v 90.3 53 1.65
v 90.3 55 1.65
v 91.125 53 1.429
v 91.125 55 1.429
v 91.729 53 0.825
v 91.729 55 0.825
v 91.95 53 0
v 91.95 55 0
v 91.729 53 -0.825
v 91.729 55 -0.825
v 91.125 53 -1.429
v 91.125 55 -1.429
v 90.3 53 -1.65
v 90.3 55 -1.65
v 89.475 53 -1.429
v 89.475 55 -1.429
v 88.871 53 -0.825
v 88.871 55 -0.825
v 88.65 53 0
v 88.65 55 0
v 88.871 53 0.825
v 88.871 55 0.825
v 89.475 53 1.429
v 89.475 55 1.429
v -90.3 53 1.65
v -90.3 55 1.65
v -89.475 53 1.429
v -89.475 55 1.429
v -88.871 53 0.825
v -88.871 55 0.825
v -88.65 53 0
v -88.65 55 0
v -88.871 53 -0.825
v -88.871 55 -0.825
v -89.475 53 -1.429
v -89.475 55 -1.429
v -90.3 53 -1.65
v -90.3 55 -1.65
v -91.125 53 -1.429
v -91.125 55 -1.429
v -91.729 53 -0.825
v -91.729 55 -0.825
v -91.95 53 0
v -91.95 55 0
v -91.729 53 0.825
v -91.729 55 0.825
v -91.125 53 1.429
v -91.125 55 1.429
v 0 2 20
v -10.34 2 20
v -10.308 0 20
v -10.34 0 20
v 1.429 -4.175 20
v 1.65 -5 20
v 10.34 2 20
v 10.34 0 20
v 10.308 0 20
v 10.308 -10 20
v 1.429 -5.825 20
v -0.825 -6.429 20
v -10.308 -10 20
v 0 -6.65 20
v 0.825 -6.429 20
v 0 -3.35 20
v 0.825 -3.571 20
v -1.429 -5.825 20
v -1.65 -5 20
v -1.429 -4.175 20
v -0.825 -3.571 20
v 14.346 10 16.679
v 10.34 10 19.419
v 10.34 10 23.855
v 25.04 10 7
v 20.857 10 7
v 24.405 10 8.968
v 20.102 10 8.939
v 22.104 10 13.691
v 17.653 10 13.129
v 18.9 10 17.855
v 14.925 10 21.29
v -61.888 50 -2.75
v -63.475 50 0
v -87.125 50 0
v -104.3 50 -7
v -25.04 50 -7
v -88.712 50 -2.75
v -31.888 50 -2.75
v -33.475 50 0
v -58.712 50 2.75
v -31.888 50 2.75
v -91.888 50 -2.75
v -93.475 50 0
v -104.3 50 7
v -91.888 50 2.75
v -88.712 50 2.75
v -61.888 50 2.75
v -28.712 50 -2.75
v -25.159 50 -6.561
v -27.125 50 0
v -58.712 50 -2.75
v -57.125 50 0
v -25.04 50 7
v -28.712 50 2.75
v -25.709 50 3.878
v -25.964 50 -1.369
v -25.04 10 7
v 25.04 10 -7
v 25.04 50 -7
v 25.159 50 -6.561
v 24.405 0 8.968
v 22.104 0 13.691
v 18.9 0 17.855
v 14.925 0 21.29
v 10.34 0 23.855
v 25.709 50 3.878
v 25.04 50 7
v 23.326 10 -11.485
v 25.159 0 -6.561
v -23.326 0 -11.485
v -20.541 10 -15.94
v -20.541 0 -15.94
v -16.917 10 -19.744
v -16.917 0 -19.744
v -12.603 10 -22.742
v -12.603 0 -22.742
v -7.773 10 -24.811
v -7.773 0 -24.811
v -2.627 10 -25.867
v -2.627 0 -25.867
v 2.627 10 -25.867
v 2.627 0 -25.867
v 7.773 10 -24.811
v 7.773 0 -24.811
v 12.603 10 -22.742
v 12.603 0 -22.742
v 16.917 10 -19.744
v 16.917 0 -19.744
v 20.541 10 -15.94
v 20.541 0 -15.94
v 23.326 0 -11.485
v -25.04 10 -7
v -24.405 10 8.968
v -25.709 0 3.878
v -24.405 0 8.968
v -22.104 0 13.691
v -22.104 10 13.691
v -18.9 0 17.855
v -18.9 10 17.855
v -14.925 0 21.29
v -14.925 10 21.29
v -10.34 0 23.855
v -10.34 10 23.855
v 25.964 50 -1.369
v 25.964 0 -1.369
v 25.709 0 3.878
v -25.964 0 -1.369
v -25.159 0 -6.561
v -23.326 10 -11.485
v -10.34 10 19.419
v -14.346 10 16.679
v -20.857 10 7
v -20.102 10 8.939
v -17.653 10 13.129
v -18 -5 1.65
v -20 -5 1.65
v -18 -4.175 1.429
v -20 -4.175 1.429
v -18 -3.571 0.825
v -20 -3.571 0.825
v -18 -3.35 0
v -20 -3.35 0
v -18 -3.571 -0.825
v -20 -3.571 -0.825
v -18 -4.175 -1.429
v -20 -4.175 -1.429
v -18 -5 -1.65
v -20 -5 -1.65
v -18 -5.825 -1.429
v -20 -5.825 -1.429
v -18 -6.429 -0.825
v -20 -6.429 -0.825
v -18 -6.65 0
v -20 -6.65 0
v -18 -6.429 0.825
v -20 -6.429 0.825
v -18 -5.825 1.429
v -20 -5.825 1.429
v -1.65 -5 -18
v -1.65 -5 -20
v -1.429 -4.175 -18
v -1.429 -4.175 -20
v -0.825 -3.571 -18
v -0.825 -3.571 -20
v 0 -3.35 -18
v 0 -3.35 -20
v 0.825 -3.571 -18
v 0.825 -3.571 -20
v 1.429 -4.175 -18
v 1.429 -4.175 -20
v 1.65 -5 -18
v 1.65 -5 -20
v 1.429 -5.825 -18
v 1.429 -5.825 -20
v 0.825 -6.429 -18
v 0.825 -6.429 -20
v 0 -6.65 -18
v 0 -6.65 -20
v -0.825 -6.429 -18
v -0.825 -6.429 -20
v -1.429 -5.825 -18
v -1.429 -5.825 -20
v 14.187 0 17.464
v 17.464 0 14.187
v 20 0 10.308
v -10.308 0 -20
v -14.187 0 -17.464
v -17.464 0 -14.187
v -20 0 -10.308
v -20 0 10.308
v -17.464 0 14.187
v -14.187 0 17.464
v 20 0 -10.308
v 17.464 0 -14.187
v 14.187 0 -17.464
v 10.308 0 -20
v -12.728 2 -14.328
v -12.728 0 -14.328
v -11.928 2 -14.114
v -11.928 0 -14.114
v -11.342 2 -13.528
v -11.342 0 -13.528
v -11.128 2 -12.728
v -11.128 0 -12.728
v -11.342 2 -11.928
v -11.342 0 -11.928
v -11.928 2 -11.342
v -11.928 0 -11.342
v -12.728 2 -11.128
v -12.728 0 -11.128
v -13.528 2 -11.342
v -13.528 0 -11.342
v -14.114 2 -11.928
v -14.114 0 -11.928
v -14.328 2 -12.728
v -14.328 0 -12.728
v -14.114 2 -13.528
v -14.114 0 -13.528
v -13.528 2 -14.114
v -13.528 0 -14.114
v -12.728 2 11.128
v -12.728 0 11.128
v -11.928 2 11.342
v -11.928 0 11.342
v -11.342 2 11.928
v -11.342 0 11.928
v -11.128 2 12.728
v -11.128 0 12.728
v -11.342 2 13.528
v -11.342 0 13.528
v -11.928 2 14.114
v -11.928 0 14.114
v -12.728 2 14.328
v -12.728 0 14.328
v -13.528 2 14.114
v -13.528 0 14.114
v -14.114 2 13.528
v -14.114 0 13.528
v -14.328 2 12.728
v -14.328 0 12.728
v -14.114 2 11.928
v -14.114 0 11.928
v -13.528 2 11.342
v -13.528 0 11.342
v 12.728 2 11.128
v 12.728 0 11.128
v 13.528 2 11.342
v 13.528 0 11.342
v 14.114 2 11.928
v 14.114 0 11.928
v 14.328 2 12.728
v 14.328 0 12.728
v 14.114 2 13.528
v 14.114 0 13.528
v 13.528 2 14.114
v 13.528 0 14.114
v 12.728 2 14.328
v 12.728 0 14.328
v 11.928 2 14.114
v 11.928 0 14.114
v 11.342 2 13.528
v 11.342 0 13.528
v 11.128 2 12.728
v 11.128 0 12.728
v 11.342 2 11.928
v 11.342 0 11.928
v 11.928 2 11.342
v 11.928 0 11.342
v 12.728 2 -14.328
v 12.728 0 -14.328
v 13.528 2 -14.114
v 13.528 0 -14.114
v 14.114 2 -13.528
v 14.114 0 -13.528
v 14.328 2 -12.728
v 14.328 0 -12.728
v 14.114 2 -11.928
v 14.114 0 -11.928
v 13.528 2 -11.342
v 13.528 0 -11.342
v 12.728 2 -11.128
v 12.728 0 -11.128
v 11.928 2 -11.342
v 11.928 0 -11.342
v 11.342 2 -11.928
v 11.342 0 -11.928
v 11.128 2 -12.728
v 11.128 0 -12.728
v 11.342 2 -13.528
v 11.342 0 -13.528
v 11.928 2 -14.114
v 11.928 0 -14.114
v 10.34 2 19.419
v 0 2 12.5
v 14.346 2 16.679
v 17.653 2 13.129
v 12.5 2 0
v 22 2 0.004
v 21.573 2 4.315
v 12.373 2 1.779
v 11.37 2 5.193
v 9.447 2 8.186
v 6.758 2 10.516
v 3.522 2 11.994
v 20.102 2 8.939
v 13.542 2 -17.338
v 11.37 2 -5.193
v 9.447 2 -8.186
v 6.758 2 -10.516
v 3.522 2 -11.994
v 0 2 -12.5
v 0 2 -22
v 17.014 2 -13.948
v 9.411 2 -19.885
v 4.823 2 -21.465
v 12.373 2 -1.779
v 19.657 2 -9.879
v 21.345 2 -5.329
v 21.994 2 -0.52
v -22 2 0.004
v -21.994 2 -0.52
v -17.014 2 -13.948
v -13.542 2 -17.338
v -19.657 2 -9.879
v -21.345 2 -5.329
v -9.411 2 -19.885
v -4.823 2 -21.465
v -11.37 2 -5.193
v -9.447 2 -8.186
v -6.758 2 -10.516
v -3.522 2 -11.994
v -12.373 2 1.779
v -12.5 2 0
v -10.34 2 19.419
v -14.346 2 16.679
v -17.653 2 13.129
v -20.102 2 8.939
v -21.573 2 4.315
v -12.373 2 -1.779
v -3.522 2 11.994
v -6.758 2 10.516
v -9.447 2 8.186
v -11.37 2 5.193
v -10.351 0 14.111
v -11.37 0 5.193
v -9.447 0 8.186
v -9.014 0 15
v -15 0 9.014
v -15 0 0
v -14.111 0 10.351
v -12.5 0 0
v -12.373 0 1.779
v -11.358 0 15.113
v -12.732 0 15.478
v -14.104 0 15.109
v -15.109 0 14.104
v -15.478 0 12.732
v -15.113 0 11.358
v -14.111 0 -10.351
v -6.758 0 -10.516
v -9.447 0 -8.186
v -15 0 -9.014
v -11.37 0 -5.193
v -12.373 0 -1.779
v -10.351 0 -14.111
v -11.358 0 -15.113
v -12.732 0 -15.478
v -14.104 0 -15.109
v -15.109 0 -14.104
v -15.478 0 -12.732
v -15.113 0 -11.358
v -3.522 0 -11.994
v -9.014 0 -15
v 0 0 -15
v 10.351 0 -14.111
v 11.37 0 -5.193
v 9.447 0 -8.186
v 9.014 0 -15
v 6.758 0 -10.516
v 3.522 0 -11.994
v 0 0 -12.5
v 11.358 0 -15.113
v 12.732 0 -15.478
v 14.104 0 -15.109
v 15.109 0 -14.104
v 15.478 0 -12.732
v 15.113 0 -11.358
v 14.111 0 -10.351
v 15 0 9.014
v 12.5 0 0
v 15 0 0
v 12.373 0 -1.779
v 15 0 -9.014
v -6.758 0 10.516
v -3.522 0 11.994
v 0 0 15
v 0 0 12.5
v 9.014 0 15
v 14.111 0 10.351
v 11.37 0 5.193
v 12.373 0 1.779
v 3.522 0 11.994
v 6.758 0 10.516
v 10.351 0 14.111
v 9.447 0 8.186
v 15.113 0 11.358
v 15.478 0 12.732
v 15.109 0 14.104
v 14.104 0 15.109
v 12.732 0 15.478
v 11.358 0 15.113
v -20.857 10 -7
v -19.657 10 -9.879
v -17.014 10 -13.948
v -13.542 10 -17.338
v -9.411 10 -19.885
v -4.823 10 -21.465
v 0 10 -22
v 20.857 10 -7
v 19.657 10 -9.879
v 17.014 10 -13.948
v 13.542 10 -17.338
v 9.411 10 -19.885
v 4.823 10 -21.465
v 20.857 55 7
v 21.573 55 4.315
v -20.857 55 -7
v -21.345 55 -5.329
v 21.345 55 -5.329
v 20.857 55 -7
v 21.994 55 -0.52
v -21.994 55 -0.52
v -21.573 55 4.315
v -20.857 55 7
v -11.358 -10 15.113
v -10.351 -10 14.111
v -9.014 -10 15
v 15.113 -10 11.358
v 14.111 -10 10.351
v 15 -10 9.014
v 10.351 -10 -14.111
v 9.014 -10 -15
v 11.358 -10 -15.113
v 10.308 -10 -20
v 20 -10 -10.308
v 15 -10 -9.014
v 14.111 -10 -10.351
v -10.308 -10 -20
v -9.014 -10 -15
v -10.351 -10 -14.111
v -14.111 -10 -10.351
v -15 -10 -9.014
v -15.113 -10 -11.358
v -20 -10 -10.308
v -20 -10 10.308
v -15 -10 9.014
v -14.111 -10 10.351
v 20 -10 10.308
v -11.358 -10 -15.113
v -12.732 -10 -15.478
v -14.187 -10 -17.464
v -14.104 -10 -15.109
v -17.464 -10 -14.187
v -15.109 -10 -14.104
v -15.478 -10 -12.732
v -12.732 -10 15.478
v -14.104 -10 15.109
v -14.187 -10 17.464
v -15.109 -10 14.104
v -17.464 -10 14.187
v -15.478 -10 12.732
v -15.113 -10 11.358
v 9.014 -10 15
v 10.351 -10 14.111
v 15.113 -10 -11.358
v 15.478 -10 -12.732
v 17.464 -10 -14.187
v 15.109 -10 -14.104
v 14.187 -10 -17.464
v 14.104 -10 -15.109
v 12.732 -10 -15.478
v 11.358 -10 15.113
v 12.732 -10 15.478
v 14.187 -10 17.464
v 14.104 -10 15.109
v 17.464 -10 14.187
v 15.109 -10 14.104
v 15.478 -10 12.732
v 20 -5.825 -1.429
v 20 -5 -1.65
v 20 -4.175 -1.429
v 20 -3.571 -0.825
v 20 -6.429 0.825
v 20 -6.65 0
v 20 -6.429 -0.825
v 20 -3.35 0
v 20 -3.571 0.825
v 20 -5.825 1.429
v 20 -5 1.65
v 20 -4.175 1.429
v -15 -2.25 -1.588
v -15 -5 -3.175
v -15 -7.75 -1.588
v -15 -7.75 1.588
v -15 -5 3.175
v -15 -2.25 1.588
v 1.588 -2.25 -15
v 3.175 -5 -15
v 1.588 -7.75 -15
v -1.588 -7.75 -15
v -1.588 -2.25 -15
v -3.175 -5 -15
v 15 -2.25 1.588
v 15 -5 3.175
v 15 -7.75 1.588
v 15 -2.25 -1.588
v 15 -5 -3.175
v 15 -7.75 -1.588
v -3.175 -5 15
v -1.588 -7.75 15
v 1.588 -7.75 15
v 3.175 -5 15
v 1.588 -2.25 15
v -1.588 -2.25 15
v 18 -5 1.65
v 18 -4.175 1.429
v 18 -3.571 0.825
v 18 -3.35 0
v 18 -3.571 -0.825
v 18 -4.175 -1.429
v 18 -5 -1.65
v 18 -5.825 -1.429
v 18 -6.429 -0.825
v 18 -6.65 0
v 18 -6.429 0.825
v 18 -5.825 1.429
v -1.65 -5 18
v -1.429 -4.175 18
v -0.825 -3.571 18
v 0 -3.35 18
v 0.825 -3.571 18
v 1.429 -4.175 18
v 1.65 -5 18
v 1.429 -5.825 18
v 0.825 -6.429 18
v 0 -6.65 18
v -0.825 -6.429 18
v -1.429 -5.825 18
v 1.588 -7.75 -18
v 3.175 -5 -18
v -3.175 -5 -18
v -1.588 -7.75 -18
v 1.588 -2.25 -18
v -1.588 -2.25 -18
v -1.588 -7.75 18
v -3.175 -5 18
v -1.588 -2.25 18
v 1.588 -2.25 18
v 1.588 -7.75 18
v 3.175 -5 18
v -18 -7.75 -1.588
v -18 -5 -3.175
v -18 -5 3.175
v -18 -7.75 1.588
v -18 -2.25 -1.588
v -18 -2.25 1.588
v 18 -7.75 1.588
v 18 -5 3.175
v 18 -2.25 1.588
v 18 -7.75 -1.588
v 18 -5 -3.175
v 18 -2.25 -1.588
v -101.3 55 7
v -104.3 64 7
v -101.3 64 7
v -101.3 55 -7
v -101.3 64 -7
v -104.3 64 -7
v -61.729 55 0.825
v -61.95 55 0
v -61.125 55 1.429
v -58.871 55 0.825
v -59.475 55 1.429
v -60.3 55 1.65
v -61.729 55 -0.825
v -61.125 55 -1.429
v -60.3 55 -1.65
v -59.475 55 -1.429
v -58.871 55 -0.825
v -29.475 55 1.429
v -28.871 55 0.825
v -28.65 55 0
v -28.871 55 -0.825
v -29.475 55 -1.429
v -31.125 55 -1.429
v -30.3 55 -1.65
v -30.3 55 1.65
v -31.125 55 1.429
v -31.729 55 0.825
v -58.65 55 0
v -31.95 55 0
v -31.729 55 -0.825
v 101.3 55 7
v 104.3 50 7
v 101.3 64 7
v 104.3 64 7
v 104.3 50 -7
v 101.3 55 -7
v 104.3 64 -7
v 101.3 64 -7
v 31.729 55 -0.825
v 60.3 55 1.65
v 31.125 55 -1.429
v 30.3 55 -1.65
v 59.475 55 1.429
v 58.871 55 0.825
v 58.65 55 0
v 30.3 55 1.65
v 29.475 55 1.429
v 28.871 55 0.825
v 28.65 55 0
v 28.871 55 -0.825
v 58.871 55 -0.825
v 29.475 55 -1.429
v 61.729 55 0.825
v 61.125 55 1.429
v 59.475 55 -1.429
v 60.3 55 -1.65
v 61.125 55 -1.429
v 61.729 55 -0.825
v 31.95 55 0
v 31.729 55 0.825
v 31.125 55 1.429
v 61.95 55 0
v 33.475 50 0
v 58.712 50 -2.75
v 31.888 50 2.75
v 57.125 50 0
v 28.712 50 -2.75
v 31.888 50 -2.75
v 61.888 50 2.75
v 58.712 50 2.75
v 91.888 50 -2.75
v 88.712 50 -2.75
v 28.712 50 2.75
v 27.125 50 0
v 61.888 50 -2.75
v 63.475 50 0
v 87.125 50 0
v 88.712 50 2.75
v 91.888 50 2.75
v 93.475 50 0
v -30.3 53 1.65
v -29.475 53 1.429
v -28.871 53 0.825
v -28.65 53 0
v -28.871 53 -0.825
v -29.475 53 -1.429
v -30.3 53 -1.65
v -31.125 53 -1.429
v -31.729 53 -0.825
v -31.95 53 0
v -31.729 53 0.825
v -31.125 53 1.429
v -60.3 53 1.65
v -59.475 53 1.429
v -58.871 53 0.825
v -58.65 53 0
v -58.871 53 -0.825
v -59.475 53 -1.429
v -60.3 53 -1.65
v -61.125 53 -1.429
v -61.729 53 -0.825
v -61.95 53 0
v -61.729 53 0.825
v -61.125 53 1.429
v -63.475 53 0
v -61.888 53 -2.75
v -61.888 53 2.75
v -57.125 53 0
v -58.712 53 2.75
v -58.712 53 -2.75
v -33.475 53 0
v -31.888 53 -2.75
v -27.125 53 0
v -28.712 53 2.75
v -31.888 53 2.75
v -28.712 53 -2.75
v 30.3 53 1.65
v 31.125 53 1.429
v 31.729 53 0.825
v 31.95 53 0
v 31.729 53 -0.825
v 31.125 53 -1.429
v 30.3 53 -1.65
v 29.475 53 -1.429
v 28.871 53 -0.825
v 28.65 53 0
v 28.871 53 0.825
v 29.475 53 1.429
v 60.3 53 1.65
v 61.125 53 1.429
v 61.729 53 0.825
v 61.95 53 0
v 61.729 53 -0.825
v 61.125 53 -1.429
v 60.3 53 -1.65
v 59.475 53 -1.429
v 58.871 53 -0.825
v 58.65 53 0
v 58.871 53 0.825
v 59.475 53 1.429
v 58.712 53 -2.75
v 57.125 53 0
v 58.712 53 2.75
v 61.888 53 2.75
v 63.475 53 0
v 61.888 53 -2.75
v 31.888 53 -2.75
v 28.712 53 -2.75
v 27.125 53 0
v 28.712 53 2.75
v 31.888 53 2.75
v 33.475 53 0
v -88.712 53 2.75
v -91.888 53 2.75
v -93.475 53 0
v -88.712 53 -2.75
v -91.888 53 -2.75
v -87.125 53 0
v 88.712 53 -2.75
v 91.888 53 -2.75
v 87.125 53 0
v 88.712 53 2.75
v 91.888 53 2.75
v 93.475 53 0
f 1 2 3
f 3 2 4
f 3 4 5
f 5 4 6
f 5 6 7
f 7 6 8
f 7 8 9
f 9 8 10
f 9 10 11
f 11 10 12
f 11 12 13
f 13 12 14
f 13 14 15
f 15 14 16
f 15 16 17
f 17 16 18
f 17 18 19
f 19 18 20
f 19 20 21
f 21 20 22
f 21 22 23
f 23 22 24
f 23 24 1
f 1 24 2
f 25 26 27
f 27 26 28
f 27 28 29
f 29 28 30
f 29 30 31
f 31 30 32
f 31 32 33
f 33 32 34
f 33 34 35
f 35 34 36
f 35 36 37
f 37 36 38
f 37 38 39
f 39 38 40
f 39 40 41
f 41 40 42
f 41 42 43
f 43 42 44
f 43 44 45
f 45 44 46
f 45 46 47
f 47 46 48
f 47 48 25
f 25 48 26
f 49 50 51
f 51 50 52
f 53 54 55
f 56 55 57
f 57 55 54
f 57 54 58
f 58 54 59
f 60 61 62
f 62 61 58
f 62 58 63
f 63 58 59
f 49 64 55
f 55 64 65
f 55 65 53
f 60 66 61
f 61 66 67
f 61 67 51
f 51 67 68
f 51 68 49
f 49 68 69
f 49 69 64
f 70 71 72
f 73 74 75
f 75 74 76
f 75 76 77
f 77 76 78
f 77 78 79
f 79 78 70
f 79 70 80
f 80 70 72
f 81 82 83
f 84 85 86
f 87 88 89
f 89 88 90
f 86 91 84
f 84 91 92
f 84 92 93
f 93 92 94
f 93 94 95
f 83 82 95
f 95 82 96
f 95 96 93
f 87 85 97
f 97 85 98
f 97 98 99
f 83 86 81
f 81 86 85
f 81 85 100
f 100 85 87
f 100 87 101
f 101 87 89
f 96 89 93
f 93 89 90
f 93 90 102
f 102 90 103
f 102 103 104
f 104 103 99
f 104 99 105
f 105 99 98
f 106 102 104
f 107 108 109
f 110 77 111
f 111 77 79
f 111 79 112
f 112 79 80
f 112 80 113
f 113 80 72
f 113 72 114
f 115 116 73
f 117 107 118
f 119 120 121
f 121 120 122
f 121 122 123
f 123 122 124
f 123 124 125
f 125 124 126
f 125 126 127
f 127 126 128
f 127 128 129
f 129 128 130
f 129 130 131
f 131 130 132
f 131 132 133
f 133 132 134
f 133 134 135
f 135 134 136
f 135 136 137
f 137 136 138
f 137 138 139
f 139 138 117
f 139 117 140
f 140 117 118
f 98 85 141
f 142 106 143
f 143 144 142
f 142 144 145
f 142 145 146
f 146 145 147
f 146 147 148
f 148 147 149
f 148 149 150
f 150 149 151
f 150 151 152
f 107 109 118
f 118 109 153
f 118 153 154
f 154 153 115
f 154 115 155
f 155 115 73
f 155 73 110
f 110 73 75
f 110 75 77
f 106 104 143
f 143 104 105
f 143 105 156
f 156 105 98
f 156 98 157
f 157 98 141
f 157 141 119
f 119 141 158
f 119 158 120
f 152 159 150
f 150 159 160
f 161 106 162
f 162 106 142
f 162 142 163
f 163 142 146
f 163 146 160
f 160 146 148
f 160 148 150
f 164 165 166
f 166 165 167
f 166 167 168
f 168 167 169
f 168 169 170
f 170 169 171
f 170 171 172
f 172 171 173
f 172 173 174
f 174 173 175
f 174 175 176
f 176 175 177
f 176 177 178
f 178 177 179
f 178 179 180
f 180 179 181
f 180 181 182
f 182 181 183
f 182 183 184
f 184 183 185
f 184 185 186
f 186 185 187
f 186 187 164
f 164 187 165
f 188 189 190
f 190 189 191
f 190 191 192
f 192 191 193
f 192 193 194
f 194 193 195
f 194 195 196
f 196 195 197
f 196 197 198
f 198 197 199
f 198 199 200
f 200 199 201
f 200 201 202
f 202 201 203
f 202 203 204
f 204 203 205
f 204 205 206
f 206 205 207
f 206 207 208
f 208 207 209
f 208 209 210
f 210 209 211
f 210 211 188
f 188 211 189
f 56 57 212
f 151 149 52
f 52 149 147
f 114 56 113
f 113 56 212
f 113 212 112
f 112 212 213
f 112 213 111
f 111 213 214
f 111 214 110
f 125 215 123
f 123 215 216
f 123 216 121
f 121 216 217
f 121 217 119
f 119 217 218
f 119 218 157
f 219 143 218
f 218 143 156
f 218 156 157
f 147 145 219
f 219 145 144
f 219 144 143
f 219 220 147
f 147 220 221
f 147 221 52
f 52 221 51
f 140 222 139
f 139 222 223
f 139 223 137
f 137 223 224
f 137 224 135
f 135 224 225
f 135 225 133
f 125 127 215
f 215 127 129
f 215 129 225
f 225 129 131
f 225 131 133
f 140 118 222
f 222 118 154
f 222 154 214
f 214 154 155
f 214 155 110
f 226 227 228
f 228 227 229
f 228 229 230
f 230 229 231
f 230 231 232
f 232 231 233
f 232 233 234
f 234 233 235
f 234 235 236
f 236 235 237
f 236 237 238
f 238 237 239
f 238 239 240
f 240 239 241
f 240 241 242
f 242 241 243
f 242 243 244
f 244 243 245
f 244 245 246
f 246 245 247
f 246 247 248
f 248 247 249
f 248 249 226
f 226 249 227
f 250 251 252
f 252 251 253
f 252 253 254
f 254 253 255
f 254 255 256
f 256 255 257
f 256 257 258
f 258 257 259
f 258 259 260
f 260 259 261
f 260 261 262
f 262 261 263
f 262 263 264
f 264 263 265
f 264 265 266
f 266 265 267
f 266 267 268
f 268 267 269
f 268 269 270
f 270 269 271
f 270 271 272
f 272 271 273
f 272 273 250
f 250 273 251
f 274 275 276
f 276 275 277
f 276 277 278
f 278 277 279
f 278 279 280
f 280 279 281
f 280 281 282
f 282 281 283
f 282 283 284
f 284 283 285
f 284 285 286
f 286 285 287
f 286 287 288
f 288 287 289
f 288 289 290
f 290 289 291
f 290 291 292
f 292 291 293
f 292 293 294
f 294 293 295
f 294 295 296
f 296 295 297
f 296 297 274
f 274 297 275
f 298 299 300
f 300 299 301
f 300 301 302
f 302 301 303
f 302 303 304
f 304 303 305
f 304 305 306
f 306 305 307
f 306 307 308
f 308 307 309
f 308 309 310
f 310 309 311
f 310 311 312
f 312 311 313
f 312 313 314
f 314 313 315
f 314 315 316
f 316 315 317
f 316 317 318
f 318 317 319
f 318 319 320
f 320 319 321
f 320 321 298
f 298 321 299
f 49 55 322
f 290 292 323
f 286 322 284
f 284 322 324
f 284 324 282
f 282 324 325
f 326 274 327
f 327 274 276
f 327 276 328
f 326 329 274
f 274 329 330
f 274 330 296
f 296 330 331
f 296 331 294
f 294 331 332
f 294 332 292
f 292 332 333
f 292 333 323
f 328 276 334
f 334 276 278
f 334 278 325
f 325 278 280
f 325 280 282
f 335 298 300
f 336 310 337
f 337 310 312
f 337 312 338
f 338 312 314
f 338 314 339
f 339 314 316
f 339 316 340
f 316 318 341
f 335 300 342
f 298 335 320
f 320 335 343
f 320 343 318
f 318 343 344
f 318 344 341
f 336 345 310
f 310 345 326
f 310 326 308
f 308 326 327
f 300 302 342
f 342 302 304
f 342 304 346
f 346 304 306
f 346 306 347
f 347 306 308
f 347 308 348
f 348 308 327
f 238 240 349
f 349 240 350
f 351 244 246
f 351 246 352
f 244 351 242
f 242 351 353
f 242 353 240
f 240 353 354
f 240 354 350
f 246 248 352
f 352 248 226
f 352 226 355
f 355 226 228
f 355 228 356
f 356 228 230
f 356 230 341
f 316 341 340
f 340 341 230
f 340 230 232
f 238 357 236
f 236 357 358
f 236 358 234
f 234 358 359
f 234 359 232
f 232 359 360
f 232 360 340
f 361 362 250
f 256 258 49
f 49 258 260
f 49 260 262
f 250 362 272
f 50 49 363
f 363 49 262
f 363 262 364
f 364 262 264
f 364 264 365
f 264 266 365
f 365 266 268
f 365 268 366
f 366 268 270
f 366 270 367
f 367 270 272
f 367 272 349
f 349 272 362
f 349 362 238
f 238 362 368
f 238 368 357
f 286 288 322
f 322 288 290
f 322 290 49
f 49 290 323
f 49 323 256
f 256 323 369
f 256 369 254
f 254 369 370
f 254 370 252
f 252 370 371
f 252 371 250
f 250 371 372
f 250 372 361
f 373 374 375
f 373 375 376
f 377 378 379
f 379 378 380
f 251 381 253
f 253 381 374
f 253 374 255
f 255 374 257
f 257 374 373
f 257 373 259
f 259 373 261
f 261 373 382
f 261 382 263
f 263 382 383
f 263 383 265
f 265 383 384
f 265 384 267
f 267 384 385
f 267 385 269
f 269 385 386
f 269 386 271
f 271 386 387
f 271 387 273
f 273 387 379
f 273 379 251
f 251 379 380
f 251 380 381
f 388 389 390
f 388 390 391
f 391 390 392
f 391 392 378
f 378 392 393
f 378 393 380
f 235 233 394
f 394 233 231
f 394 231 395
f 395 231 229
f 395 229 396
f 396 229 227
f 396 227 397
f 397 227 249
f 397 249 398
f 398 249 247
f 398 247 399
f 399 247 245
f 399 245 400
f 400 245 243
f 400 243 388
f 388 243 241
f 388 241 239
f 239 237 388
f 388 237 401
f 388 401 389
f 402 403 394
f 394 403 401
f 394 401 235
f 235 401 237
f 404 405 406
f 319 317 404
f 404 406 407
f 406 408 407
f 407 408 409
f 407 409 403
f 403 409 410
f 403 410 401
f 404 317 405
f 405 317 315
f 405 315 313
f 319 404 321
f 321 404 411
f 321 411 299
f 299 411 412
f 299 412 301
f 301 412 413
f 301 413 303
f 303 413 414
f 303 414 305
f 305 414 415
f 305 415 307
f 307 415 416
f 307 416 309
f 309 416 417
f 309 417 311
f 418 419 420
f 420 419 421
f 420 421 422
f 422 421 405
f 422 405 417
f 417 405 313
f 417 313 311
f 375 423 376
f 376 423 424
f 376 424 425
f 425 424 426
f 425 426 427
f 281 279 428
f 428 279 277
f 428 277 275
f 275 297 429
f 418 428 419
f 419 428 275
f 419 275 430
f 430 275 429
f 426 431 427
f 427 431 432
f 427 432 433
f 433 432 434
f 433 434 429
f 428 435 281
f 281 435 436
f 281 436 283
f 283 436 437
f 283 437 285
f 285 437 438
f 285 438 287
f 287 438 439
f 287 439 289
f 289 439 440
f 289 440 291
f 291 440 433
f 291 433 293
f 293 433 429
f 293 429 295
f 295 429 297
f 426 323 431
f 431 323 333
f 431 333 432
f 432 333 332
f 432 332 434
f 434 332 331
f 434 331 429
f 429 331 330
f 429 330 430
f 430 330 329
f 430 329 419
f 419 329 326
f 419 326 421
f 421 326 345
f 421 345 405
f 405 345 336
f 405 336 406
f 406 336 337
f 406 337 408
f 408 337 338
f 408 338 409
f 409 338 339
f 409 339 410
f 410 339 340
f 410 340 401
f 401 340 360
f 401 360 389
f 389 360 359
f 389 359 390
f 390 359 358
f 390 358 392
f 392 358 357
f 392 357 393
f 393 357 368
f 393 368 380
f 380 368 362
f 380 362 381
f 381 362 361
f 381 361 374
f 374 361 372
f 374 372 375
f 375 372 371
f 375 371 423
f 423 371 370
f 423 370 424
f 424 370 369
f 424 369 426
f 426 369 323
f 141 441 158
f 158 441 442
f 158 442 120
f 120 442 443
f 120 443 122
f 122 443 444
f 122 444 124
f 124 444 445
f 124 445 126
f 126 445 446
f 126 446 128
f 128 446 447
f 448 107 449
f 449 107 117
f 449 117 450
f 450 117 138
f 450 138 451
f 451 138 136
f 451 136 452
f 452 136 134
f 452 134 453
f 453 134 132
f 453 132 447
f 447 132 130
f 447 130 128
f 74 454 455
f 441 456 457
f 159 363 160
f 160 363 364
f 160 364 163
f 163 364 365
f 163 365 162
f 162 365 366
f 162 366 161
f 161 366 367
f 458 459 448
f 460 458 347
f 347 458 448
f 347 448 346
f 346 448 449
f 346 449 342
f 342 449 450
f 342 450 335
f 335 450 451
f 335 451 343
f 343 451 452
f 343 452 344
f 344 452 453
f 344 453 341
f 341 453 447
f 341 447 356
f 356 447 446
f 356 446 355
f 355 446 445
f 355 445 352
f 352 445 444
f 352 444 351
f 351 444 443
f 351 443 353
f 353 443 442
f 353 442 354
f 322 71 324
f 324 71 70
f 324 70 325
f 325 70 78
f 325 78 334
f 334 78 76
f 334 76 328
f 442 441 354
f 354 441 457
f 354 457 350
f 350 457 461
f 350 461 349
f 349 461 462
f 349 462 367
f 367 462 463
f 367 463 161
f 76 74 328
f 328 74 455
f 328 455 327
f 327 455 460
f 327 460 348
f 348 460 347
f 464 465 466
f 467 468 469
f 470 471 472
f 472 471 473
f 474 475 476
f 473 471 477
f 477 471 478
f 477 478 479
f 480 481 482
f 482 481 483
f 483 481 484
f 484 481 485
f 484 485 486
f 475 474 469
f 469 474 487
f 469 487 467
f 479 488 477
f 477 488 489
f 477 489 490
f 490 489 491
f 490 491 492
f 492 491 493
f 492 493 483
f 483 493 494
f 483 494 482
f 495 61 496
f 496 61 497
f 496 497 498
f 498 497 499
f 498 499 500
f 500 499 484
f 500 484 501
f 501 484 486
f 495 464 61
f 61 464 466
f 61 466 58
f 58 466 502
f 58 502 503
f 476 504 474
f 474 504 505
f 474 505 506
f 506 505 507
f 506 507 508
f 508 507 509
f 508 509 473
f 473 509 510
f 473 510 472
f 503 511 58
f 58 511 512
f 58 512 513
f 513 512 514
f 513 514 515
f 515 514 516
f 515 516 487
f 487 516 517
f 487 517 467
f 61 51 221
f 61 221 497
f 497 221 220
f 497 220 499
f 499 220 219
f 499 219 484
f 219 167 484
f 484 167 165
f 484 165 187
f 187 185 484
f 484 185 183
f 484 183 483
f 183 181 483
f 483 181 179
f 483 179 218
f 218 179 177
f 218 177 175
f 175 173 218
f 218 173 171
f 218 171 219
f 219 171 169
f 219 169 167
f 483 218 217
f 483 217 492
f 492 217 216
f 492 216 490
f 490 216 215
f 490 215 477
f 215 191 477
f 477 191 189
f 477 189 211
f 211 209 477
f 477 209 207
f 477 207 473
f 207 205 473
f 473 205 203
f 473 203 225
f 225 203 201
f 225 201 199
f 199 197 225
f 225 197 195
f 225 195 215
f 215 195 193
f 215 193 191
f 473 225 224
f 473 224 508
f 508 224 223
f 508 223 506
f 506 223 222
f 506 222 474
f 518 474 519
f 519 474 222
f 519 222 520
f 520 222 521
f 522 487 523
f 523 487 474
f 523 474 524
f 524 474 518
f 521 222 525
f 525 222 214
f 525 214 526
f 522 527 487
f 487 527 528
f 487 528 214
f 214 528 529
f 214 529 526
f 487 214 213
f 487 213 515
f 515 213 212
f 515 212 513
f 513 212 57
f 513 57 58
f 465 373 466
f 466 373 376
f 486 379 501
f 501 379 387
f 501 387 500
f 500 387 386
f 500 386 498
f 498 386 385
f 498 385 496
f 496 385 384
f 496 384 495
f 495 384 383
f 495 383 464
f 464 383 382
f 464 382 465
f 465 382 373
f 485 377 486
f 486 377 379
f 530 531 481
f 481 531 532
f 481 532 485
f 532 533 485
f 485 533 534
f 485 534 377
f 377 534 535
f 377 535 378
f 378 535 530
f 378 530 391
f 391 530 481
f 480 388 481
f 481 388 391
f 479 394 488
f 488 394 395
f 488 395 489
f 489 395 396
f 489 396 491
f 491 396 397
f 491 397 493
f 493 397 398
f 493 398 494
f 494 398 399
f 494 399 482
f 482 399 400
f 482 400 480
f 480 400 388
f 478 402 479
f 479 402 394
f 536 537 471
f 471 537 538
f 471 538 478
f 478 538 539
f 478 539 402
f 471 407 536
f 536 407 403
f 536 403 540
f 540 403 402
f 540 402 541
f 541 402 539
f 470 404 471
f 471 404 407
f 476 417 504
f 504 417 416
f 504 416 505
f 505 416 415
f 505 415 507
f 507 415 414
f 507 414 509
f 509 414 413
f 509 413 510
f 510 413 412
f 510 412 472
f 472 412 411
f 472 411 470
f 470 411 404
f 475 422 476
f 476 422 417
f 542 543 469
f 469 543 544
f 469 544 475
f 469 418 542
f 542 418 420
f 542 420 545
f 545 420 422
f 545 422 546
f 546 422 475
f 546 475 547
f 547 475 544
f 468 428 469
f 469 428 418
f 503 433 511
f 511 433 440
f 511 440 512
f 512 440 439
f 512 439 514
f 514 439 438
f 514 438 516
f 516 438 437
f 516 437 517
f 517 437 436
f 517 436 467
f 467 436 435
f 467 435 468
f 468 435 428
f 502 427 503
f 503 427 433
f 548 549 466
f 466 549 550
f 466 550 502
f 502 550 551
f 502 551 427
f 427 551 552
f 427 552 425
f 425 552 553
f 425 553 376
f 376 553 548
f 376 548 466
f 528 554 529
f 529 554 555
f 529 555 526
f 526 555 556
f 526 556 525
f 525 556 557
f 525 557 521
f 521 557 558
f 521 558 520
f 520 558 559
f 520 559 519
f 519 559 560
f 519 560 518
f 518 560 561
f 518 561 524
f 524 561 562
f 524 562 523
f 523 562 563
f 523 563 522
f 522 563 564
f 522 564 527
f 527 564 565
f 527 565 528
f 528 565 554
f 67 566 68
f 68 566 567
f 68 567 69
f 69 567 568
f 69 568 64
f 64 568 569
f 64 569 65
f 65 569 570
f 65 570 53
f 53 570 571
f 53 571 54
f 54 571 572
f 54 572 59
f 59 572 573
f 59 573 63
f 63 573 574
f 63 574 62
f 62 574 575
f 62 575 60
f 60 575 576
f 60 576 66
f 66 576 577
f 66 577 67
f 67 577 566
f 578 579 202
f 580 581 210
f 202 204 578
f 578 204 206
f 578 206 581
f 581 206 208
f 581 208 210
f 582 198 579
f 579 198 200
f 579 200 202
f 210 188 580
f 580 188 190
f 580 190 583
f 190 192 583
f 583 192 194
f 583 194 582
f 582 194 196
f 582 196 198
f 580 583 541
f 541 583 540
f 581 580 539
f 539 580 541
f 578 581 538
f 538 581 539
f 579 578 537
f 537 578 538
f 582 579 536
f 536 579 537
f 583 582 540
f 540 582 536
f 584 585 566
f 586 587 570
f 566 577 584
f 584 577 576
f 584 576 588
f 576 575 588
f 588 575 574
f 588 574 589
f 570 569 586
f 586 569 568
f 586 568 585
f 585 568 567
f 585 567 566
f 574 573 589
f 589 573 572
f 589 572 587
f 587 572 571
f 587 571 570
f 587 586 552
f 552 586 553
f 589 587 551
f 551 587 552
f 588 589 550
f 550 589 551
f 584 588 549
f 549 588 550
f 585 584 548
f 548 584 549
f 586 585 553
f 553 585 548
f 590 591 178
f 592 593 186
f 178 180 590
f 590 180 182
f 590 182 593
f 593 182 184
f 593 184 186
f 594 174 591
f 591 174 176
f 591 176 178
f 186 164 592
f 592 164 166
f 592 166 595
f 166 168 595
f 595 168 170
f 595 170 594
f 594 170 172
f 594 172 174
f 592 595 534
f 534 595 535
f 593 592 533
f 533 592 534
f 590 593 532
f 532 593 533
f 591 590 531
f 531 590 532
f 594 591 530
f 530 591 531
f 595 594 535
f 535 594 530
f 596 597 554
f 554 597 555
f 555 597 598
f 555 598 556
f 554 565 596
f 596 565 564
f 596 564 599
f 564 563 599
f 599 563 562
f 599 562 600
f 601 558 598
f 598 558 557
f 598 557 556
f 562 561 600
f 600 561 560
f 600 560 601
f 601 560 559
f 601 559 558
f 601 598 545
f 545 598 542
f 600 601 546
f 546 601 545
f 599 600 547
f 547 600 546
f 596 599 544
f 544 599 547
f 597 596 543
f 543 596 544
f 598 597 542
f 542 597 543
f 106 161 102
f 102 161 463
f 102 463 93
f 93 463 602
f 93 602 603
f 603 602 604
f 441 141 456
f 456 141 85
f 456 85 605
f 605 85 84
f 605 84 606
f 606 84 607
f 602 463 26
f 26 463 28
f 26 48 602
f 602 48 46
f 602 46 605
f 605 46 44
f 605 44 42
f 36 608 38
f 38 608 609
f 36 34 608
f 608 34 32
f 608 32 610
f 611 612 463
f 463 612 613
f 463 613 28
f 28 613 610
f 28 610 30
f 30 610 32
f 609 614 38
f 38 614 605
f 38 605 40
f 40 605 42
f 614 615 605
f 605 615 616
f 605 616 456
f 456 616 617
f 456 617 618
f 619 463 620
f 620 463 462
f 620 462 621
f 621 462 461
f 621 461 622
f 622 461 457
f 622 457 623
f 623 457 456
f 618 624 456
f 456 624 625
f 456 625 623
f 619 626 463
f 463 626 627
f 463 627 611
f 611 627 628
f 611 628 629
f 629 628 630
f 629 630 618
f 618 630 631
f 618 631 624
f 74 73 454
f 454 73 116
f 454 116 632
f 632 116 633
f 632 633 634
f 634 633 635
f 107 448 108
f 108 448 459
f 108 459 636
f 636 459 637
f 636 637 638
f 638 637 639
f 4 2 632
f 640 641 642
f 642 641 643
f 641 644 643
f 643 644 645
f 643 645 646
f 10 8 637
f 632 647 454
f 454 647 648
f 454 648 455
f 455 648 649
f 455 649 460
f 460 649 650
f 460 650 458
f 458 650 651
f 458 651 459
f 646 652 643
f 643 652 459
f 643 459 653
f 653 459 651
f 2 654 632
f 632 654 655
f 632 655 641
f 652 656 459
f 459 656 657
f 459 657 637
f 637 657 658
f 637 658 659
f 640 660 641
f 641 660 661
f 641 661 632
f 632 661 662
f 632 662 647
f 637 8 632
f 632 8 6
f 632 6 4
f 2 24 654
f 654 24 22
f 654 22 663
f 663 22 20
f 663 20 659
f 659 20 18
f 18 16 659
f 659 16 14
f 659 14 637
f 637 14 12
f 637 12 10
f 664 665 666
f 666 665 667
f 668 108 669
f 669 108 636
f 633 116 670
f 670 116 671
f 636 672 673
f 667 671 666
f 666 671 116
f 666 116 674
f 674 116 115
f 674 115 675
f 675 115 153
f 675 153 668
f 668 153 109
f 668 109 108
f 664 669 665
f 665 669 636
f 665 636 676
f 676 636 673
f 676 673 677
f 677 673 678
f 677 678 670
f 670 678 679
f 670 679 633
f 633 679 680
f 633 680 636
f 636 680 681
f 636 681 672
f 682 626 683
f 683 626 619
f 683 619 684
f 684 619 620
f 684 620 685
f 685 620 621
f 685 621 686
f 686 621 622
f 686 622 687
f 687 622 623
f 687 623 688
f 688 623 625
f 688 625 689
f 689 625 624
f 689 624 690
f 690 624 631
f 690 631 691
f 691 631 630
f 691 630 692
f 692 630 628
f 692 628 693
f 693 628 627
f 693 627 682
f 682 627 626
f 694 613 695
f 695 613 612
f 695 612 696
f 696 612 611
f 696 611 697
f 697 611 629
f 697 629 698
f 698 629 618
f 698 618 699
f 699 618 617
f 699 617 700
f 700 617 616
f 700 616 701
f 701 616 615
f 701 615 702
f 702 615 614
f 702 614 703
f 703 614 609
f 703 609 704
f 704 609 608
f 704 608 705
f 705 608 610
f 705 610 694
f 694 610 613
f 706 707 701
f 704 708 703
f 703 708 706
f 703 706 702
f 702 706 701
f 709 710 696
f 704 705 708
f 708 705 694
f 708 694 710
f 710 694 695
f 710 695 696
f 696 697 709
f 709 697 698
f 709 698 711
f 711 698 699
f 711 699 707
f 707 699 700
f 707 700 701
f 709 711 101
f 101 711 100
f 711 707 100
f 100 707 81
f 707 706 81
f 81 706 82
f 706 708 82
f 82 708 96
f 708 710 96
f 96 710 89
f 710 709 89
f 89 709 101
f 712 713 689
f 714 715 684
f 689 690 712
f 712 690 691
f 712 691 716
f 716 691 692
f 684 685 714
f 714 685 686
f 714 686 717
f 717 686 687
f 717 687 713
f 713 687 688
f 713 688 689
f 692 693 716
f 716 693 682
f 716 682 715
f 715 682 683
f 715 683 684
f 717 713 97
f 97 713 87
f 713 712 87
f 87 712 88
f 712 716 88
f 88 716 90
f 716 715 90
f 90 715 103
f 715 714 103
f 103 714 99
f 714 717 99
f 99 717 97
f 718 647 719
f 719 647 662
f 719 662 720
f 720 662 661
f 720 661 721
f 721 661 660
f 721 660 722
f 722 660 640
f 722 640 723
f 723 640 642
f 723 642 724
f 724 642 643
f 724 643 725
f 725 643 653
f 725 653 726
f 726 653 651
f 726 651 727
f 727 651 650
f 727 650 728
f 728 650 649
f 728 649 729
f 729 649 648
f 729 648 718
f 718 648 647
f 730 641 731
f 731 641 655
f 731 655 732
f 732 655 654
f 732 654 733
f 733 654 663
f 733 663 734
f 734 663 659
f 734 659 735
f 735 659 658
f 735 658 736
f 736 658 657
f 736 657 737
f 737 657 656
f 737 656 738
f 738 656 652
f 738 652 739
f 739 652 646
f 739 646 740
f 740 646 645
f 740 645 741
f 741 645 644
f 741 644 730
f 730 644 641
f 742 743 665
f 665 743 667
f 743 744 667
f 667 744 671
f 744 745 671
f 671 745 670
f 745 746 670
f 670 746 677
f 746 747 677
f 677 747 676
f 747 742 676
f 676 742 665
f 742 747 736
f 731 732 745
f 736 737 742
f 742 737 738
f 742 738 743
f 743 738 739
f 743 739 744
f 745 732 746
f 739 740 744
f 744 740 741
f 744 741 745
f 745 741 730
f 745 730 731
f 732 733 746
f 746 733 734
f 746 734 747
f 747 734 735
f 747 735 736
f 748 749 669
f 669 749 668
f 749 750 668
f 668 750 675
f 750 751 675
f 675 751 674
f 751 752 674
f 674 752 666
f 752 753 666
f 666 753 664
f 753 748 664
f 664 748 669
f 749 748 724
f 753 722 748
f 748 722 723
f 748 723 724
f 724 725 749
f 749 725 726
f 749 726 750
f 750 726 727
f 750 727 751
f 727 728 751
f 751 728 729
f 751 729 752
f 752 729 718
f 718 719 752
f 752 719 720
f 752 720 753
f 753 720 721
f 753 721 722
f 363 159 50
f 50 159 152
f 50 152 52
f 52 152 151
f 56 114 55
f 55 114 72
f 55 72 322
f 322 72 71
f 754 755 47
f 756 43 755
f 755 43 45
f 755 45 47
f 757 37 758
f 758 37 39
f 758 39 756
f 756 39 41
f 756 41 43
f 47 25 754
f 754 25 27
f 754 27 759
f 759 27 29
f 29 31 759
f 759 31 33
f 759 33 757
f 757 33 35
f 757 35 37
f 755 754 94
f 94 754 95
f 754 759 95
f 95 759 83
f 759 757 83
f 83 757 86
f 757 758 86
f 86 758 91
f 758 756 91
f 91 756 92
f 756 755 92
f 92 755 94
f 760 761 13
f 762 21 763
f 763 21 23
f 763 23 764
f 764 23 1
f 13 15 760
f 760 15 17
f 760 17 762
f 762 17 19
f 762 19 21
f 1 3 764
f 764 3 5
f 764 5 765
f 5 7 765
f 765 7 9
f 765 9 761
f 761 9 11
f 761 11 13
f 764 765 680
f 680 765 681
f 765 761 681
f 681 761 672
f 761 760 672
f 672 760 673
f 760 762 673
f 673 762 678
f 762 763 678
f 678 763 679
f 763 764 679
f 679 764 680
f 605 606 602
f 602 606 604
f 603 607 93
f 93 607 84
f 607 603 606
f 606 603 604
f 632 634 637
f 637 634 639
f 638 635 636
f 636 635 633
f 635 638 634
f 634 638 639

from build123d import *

# Parameters (mm, degrees)
SKETCH_1_R           = 1.6
EXTRUDE_1_DEPTH      = 2
SKETCH_2_R           = 12.5
CUT_EXTRUDE_1_DEPTH  = 3
SKETCH_5_R           = 26
SKETCH_5_R_2         = 22
EXTRUDE_3_DEPTH      = 10
EXTRUDE_5_DEPTH      = 10
SKETCH_15_R          = 1.65
CUT_EXTRUDE_2_DEPTH  = 42
SKETCH_16_R          = 1.65
CUT_EXTRUDE_3_DEPTH  = 42
CUT_EXTRUDE_4_DEPTH  = 18
CUT_EXTRUDE_5_DEPTH  = 18
EXTRUDE_6_DEPTH      = 45
SKETCH_24_W          = 50.26
SKETCH_24_H          = 14
EXTRUDE_7_DEPTH      = 5
SKETCH_25_R          = 1.65
CUT_EXTRUDE_6_DEPTH  = 5
CUT_EXTRUDE_7_DEPTH  = 3
CUT_EXTRUDE_9_DEPTH  = 10
CUT_EXTRUDE_START    = -8
CUT_EXTRUDE_10_DEPTH = 8
SKETCH_34_W          = 26
SKETCH_34_H          = 14
EXTRUDE_9_DEPTH      = 5
SKETCH_35_R          = 1.65
CUT_EXTRUDE_11_DEPTH = 5
CUT_EXTRUDE_12_DEPTH = 3
SKETCH_37_W          = 3
SKETCH_37_H          = 14
EXTRUDE_10_DEPTH     = 14


with BuildPart() as part:
    # 草图1 → 凸台-拉伸1 (new body)
    with BuildSketch(Plane(origin=(0, 0, 0), x_dir=(1, 0, 0), z_dir=(0, 1, 0))):
        with BuildLine():
            ThreePointArc((20.341082498, 8.380952381), (0, 22), (-20.341082498, 8.380952381))
            ThreePointArc((-20.341082498, 8.380952381), (-4.271778613, -21.581286048), (22, 0))
            ThreePointArc((22, 0), (21.581286048, 4.271778613), (20.341082498, 8.380952381))
        make_face()
        with Locations(Location((-12.727922061, -12.727922061, 0), (0, 0, 270))):
            Circle(SKETCH_1_R, mode=Mode.SUBTRACT)
        with Locations(Location((12.727922061, -12.727922061, 0), (0, 0, 270))):
            Circle(SKETCH_1_R, mode=Mode.SUBTRACT)
        with Locations(Location((-12.727922061, 12.727922061, 0), (0, 0, 270))):
            Circle(SKETCH_1_R, mode=Mode.SUBTRACT)
        with Locations(Location((12.727922061, 12.727922061, 0), (0, 0, 270))):
            Circle(SKETCH_1_R, mode=Mode.SUBTRACT)
    extrude(amount=EXTRUDE_1_DEPTH)

    # 草图2 → 切除-拉伸1 (cut)
    with BuildSketch(Plane(origin=(0, 2, 0), x_dir=(1, 0, 0), z_dir=(0, 1, 0))):
        with Locations(Location((0, 0, 0), (0, 0, 270))):
            Circle(SKETCH_2_R)
    extrude(amount=-CUT_EXTRUDE_1_DEPTH, mode=Mode.SUBTRACT)

    # 草图5 → 凸台-拉伸3 (add)
    with BuildSketch(Plane(origin=(0, 0, 0), x_dir=(1, 0, 0), z_dir=(0, 1, 0))):
        with Locations(Location((0, 0, 0), (0, 0, 270))):
            Circle(SKETCH_5_R)
        with Locations(Location((0, 0, 0), (0, 0, 270))):
            Circle(SKETCH_5_R_2, mode=Mode.SUBTRACT)
    extrude(amount=EXTRUDE_3_DEPTH)

    # 草图14 → 凸台-拉伸5 (add)
    with BuildSketch(Plane.XZ):
        with BuildLine():
            Line((-10.307764064, 20), (10.307764064, 20))
            ThreePointArc((10.307764064, 20), (15.909902577, 15.909902577), (20, 10.307764064))
            Line((20, 10.307764064), (20, -10.307764064))
            ThreePointArc((20, -10.307764064), (15.909902577, -15.909902577), (10.307764064, -20))
            Line((10.307764064, -20), (-10.307764064, -20))
            ThreePointArc((-10.307764064, -20), (-15.909902577, -15.909902577), (-20, -10.307764064))
            Line((-20, -10.307764064), (-20, 10.307764064))
            ThreePointArc((-20, 10.307764064), (-15.909902577, 15.909902577), (-10.307764064, 20))
        make_face()
        with BuildLine():
            Line((-9.013878189, 15), (9.013878189, 15))
            ThreePointArc((9.013878189, 15), (9.692559275, 14.570665555), (10.350828667, 14.110646544))
            ThreePointArc((10.350828667, 14.110646544), (14.67246571, 14.67246571), (14.110646544, 10.350828667))
            ThreePointArc((14.110646544, 10.350828667), (14.570665555, 9.692559275), (15, 9.013878189))
            Line((15, 9.013878189), (15, -9.013878189))
            ThreePointArc((15, -9.013878189), (14.570665555, -9.692559275), (14.110646544, -10.350828667))
            ThreePointArc((14.110646544, -10.350828667), (14.67246571, -14.67246571), (10.350828667, -14.110646544))
            ThreePointArc((10.350828667, -14.110646544), (9.692559275, -14.570665555), (9.013878189, -15))
            Line((9.013878189, -15), (-9.013878189, -15))
            ThreePointArc((-9.013878189, -15), (-9.692559275, -14.570665555), (-10.350828667, -14.110646544))
            ThreePointArc((-10.350828667, -14.110646544), (-14.67246571, -14.67246571), (-14.110646544, -10.350828667))
            ThreePointArc((-14.110646544, -10.350828667), (-14.570665555, -9.692559275), (-15, -9.013878189))
            Line((-15, -9.013878189), (-15, 9.013878189))
            ThreePointArc((-15, 9.013878189), (-14.570665555, 9.692559275), (-14.110646544, 10.350828667))
            ThreePointArc((-14.110646544, 10.350828667), (-14.67246571, 14.67246571), (-10.350828667, 14.110646544))
            ThreePointArc((-10.350828667, 14.110646544), (-9.692559275, 14.570665555), (-9.013878189, 15))
        make_face(mode=Mode.SUBTRACT)
    extrude(amount=EXTRUDE_5_DEPTH)

    # 草图15 → 切除-拉伸2 (cut)
    with BuildSketch(Plane.ZY.offset(20)):
        with Locations((0, -5)):
            Circle(SKETCH_15_R)
    extrude(amount=-CUT_EXTRUDE_2_DEPTH, mode=Mode.SUBTRACT)

    # 草图16 → 切除-拉伸3 (cut)
    with BuildSketch(Plane(origin=(0, 0, -20), x_dir=(-1, 0, 0), z_dir=(0, 0, -1))):
        with Locations((0, -5)):
            Circle(SKETCH_16_R)
    extrude(amount=-CUT_EXTRUDE_3_DEPTH, mode=Mode.SUBTRACT)

    # 草图18 → 切除-拉伸4 (cut, symmetric)
    with BuildSketch(Plane.XY):
        Polygon((-1.58771324, -2.25), (-3.175426481, -5), (-1.58771324, -7.75), (1.58771324, -7.75), (3.175426481, -5), (1.58771324, -2.25), align=None)
    extrude(amount=CUT_EXTRUDE_4_DEPTH, both=True, mode=Mode.SUBTRACT)

    # 草图19 → 切除-拉伸5 (cut, symmetric)
    with BuildSketch(Plane(origin=(0, 0, 0), x_dir=(0, 0, -1), z_dir=(1, 0, 0))):
        Polygon((-1.58771324, -2.25), (-3.175426481, -5), (-1.58771324, -7.75), (1.58771324, -7.75), (3.175426481, -5), (1.58771324, -2.25), align=None)
    extrude(amount=CUT_EXTRUDE_5_DEPTH, both=True, mode=Mode.SUBTRACT)

    # 草图23 → 凸台-拉伸6 (add)
    with BuildSketch(Plane(origin=(0, 10, 0), x_dir=(1, 0, 0), z_dir=(0, 1, 0))):
        with BuildLine():
            ThreePointArc((-22, 0), (-21.712282003, 3.546379878), (-20.856653615, 7))
            Line((-20.856653615, 7), (-25.039968051, 7))
            ThreePointArc((-25.039968051, 7), (-25.758873901, 3.53276313), (-26, 0))
            Line((-26, 0), (-22, 0))
        make_face()
        with BuildLine():
            ThreePointArc((-20.856653615, -7), (-21.712282003, -3.546379878), (-22, 0))
            Line((-22, 0), (-26, 0))
            ThreePointArc((-26, 0), (-25.758873901, -3.53276313), (-25.039968051, -7))
            Line((-25.039968051, -7), (-20.856653615, -7))
        make_face()
        with BuildLine():
            Line((25.039968051, 7), (20.856653615, 7))
            ThreePointArc((20.856653615, 7), (21.712282003, 3.546379878), (22, 0))
            Line((22, 0), (26, 0))
            ThreePointArc((26, 0), (25.758873901, 3.53276313), (25.039968051, 7))
        make_face()
        with BuildLine():
            Line((26, 0), (22, 0))
            ThreePointArc((22, 0), (21.712282003, -3.546379878), (20.856653615, -7))
            Line((20.856653615, -7), (25.039968051, -7))
            ThreePointArc((25.039968051, -7), (25.758873901, -3.53276313), (26, 0))
        make_face()
    extrude(amount=EXTRUDE_6_DEPTH)

    # 草图24 → 凸台-拉伸7 (add)
    with BuildSketch(Plane(origin=(0, 55, 0), x_dir=(1, 0, 0), z_dir=(0, 1, 0))):
        with Locations((-50.169968051, 0)):
            Rectangle(SKETCH_24_W, SKETCH_24_H)
    extrude_7 = extrude(amount=-EXTRUDE_7_DEPTH)

    # 镜向1: 凸台-拉伸7 across plane
    add(extrude_7.mirror(Plane(origin=(0, 0, 0), x_dir=(0, 0, 1), z_dir=(1, 0, 0))))

    # 草图25 → 切除-拉伸6 (cut)
    with BuildSketch(Plane(origin=(0, 55, 0), x_dir=(1, 0, 0), z_dir=(0, 1, 0))):
        with Locations(Location((-60.299968051, 0, 0), (0, 0, 270))):
            Circle(SKETCH_25_R)
        with Locations(Location((-30.299968051, 0, 0), (0, 0, 270))):
            Circle(SKETCH_25_R)
    cut_extrude_6 = extrude(amount=-CUT_EXTRUDE_6_DEPTH, mode=Mode.SUBTRACT)

    # 草图26 → 切除-拉伸7 (cut)
    with BuildSketch(Plane(origin=(0, 50, 0), x_dir=(1, 0, 0), z_dir=(0, 1, 0))):
        Polygon((-58.712254811, 2.75), (-61.887681291, 2.75), (-63.475394532, 0), (-61.887681291, -2.75), (-58.712254811, -2.75), (-57.124541571, 0), align=None)
        Polygon((-31.887681291, 2.75), (-33.475394532, 0), (-31.887681291, -2.75), (-28.712254811, -2.75), (-27.124541571, 0), (-28.712254811, 2.75), align=None)
    cut_extrude_7 = extrude(amount=CUT_EXTRUDE_7_DEPTH, mode=Mode.SUBTRACT)

    # 镜向3: 切除-拉伸6, 切除-拉伸7 across plane
    add(cut_extrude_6.mirror(Plane(origin=(0, 0, 0), x_dir=(0, 0, 1), z_dir=(1, 0, 0))), mode=Mode.SUBTRACT)
    add(cut_extrude_7.mirror(Plane(origin=(0, 0, 0), x_dir=(0, 0, 1), z_dir=(1, 0, 0))), mode=Mode.SUBTRACT)

    # 草图28 → 切除-拉伸9 (cut)
    with BuildSketch(Plane.XZ):
        with BuildLine():
            Line((-10.34, 20), (10.34, 20))
            Line((10.34, 20), (10.34, 23.855489934))
            ThreePointArc((10.34, 23.855489934), (0, 26), (-10.34, 23.855489934))
            Line((-10.34, 23.855489934), (-10.34, 20))
        make_face()
    extrude(amount=-CUT_EXTRUDE_9_DEPTH, mode=Mode.SUBTRACT)

    # 草图29 → 切除-拉伸10 (cut)
    with BuildSketch(Plane(origin=(0, 10, 0), x_dir=(1, 0, 0), z_dir=(0, 1, 0)).offset(CUT_EXTRUDE_START)):
        with BuildLine():
            Line((-10.34, -20), (-10.34, -19.418661128))
            ThreePointArc((-10.34, -19.418661128), (-9.756906344, -19.718082528), (-9.16515139, -20))
            Line((-9.16515139, -20), (-10.34, -20))
        make_face()
        with BuildLine():
            Line((10.34, -20), (10.34, -19.418661128))
            ThreePointArc((10.34, -19.418661128), (9.756906344, -19.718082528), (9.16515139, -20))
            Line((9.16515139, -20), (10.34, -20))
        make_face()
    extrude(amount=CUT_EXTRUDE_10_DEPTH, mode=Mode.SUBTRACT)

    # 草图34 → 凸台-拉伸9 (add)
    with BuildSketch(Plane.XZ.offset(-50)):
        with Locations((-88.299968051, 0)):
            Rectangle(SKETCH_34_W, SKETCH_34_H)
        with Locations((88.299968051, 0)):
            Rectangle(SKETCH_34_W, SKETCH_34_H)
    extrude(amount=-EXTRUDE_9_DEPTH)

    # 草图35 → 切除-拉伸11 (cut)
    with BuildSketch(Plane(origin=(0, 55, 0), x_dir=(1, 0, 0), z_dir=(0, 1, 0))):
        with Locations(Location((-90.299968051, 0, 0), (0, 0, 270))):
            Circle(SKETCH_35_R)
        with Locations(Location((90.299968051, 0, 0), (0, 0, 270))):
            Circle(SKETCH_35_R)
    extrude(amount=-CUT_EXTRUDE_11_DEPTH, mode=Mode.SUBTRACT)

    # 草图36 → 切除-拉伸12 (cut)
    with BuildSketch(Plane.XZ.offset(-50)):
        Polygon((-91.887681291, 2.75), (-93.475394532, 0), (-91.887681291, -2.75), (-88.712254811, -2.75), (-87.124541571, 0), (-88.712254811, 2.75), align=None)
        Polygon((91.887681291, 2.75), (88.712254811, 2.75), (87.124541571, 0), (88.712254811, -2.75), (91.887681291, -2.75), (93.475394532, 0), align=None)
    extrude(amount=-CUT_EXTRUDE_12_DEPTH, mode=Mode.SUBTRACT)

    # 草图37 → 凸台-拉伸10 (add)
    with BuildSketch(Plane.XZ.offset(-50)):
        with Locations((-102.799968051, 0)):
            Rectangle(SKETCH_37_W, SKETCH_37_H)
        with Locations((102.799968051, 0)):
            Rectangle(SKETCH_37_W, SKETCH_37_H)
    extrude(amount=-EXTRUDE_10_DEPTH)


solid = part.part
